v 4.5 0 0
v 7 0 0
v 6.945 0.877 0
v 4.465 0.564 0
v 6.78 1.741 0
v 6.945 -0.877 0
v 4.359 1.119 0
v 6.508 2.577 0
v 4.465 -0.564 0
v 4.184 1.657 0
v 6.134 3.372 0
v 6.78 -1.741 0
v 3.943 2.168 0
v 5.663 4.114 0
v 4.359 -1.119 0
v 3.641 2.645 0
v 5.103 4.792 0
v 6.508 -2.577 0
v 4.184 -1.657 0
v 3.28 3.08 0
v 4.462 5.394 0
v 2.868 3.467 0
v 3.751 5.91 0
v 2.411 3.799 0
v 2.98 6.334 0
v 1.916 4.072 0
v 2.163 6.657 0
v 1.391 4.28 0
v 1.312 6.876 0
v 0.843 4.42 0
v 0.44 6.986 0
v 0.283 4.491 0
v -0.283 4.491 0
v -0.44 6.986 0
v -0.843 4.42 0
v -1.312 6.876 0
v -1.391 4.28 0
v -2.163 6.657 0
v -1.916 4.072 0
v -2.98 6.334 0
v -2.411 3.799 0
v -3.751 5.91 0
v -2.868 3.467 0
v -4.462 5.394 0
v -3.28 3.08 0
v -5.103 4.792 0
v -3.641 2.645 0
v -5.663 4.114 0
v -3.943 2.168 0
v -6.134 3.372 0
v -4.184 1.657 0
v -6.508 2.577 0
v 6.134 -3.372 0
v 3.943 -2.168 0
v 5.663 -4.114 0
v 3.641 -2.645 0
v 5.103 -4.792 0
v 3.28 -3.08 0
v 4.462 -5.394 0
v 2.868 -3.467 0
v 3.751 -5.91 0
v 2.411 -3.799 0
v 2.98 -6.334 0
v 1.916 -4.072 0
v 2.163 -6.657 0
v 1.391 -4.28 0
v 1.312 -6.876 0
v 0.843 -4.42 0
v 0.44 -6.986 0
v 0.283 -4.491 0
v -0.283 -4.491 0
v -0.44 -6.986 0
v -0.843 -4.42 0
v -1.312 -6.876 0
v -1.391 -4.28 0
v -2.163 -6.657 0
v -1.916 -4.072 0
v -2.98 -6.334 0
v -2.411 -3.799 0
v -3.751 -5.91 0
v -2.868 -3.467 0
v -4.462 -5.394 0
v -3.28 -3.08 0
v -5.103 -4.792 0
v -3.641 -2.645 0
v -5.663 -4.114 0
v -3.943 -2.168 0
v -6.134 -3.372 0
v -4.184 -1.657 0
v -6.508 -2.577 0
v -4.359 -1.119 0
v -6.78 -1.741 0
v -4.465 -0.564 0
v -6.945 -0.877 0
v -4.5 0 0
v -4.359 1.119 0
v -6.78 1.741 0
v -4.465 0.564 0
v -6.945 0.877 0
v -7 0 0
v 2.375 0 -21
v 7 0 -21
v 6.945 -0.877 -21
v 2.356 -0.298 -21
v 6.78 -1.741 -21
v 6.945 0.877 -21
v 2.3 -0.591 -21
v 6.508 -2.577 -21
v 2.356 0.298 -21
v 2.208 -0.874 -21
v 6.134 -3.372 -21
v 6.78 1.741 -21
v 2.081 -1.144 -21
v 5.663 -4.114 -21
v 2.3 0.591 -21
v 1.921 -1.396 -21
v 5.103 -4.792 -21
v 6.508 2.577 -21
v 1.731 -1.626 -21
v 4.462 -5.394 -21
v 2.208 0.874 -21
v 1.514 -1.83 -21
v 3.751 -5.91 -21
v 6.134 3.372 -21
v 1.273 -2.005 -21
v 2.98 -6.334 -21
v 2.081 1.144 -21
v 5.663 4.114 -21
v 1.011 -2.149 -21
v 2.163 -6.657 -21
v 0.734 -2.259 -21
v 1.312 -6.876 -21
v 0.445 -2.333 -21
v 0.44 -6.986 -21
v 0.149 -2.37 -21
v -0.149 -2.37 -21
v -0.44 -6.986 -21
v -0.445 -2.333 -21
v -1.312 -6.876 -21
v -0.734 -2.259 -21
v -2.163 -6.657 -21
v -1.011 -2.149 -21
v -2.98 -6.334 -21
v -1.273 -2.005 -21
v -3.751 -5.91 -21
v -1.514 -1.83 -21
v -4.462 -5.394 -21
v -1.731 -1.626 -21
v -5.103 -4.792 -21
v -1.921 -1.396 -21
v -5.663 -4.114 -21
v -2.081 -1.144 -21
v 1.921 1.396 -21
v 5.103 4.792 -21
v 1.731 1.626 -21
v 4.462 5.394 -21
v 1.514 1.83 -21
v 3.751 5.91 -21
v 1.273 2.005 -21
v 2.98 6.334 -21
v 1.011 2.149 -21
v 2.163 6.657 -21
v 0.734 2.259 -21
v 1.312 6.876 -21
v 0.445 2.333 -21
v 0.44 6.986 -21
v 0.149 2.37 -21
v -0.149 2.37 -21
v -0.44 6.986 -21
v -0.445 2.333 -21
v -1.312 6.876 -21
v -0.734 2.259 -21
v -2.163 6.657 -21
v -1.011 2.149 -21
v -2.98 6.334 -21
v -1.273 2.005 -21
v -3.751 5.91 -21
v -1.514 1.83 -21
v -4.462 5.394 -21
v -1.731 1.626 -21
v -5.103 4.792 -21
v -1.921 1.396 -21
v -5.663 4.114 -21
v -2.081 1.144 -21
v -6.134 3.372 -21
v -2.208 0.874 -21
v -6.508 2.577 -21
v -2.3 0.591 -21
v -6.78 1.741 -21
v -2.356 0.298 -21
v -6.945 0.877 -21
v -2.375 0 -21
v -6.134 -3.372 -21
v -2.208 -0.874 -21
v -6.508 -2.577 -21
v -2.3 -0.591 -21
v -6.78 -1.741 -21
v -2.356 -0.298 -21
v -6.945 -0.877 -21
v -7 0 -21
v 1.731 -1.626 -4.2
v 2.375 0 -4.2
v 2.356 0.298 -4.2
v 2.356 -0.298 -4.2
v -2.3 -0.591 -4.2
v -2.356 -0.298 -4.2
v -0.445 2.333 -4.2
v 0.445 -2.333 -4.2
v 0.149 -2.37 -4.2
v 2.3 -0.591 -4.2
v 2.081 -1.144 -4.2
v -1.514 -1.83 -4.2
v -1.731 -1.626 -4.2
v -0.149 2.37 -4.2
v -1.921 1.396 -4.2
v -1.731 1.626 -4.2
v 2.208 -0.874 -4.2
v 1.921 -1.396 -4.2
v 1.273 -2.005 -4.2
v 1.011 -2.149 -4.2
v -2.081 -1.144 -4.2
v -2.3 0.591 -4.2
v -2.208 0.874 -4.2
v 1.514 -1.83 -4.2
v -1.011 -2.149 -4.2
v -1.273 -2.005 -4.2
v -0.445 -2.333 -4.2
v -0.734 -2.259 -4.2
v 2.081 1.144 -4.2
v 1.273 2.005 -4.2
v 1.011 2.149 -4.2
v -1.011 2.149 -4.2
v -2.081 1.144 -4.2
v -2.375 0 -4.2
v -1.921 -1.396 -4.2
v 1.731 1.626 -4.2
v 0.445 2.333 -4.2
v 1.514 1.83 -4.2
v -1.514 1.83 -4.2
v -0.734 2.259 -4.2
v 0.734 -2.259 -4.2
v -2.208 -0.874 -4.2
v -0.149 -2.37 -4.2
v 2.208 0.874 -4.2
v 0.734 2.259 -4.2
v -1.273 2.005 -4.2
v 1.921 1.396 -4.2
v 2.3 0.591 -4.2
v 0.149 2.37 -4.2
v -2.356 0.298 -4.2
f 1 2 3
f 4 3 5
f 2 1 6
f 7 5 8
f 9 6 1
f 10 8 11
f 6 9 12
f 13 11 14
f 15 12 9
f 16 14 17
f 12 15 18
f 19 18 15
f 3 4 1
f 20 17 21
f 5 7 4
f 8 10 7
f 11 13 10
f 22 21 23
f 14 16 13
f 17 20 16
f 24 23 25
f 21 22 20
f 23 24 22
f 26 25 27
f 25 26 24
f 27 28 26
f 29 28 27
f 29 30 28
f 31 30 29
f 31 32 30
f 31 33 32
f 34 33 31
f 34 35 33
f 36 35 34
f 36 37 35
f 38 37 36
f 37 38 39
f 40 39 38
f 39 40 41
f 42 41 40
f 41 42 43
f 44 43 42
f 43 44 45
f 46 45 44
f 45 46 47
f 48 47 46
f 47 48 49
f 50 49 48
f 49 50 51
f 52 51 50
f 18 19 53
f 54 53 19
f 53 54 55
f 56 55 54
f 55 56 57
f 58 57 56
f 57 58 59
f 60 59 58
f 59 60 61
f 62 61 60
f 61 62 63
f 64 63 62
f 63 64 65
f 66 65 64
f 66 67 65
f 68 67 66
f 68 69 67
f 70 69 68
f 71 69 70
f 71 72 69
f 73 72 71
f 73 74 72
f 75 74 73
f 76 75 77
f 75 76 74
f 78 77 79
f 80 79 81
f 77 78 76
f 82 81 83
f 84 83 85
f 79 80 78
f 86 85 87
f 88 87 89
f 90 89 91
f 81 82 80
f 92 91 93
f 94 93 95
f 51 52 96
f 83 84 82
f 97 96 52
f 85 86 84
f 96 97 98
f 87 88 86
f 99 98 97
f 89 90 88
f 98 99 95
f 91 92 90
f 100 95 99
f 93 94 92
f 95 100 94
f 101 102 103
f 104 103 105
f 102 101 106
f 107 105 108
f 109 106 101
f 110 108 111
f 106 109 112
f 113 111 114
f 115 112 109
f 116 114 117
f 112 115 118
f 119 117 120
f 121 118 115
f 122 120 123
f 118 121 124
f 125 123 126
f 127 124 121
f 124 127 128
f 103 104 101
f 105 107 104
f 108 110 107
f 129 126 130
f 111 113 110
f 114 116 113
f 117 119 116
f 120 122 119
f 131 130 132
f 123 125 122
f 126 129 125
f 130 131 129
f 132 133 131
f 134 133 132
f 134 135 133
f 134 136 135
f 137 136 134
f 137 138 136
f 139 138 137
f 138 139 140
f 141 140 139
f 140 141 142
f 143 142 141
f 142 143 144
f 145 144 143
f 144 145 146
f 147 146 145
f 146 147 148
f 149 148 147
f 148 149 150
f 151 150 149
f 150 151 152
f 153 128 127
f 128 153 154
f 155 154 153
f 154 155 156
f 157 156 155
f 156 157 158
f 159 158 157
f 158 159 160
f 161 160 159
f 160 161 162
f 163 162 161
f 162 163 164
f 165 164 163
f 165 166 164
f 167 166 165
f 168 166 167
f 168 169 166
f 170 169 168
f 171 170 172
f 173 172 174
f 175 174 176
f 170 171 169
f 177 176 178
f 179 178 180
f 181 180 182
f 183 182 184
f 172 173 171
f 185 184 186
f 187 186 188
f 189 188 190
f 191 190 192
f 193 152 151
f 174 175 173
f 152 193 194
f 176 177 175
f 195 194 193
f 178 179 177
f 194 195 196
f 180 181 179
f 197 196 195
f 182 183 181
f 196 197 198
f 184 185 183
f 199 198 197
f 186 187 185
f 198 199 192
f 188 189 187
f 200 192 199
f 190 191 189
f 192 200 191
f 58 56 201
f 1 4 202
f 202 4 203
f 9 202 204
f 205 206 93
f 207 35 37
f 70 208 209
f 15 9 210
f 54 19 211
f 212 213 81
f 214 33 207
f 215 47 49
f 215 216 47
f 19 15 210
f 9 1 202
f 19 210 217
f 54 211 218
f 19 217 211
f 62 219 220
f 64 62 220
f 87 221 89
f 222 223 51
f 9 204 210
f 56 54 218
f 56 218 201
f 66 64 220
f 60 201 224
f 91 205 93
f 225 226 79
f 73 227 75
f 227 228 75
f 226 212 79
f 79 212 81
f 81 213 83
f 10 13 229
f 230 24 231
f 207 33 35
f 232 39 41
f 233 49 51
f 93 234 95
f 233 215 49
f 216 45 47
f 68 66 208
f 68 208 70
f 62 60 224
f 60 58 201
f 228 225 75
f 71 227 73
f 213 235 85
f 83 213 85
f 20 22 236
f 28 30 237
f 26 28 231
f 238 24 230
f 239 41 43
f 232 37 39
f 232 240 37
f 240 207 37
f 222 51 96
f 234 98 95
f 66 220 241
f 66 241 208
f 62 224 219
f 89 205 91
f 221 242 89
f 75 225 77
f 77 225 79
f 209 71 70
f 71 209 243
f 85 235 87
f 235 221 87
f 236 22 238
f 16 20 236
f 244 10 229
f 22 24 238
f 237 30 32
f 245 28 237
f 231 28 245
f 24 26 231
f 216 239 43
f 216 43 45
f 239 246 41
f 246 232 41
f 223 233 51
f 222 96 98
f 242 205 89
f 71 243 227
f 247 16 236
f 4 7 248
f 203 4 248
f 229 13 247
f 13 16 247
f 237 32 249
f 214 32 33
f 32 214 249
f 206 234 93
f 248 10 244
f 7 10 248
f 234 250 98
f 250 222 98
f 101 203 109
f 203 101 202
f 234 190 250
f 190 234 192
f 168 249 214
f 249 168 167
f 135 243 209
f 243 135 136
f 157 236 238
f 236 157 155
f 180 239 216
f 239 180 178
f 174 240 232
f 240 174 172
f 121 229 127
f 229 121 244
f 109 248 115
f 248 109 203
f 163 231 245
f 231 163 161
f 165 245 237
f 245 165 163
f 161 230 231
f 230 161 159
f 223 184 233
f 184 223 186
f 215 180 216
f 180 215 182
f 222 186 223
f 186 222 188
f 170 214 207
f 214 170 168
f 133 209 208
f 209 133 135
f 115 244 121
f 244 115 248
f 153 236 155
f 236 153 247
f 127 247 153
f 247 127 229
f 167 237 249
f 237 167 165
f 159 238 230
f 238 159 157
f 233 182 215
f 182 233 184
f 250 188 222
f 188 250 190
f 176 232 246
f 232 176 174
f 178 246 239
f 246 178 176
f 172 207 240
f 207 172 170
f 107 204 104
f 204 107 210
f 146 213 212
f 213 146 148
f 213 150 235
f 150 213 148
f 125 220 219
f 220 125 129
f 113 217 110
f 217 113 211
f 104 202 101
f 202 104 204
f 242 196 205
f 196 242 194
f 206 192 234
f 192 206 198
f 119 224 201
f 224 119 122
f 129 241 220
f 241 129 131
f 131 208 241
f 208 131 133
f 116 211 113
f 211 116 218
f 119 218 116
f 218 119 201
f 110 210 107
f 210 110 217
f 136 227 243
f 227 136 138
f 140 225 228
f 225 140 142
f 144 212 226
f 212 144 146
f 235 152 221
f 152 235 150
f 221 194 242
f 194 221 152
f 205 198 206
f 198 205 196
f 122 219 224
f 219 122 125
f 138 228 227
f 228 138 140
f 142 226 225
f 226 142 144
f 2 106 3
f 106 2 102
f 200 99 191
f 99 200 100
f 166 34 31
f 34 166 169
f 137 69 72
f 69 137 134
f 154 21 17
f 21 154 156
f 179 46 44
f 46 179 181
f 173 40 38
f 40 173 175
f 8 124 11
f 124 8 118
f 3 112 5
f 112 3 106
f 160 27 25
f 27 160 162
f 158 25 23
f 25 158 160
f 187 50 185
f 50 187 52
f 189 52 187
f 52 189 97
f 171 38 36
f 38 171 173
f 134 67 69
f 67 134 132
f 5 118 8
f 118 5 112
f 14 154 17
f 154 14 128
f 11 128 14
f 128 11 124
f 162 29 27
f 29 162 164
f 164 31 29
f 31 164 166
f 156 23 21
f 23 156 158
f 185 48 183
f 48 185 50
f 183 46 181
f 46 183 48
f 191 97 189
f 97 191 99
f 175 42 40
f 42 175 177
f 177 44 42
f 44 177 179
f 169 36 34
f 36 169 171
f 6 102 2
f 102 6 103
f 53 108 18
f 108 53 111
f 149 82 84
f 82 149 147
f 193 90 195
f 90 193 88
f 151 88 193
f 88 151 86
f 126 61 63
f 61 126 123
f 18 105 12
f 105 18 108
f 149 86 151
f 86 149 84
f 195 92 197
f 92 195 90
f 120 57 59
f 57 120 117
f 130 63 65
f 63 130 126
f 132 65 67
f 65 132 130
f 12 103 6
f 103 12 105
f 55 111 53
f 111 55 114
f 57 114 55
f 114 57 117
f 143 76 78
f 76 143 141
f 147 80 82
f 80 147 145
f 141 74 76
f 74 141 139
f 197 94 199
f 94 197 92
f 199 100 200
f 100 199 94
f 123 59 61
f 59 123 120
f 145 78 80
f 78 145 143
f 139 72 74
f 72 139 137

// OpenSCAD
$fn = 50;


difference() {
	union() {
		translate(v = [0, 0, -21.0000000000]) {
			cylinder(h = 21, r = 7.0000000000);
		}
		cylinder(h = 0, r = 10.0000000000);
	}
	union() {
		translate(v = [0, 0, 0]) {
			rotate(a = [0, 0, 0]) {
				difference() {
					union() {
						#translate(v = [0, 0, -21.0000000000]) {
							cylinder(h = 21, r = 2.2500000000);
						}
						#translate(v = [0, 0, -4.2000000000]) {
							cylinder(h = 4.2000000000, r = 7.0000000000, r1 = 2.3750000000, r2 = 4.5000000000);
						}
						#translate(v = [0, 0, -21.0000000000]) {
							cylinder(h = 21, r = 2.3750000000);
						}
						#translate(v = [0, 0, -21.0000000000]) {
							cylinder(h = 21, r = 2.2500000000);
						}
					}
					union();
				}
			}
		}
	}
}
